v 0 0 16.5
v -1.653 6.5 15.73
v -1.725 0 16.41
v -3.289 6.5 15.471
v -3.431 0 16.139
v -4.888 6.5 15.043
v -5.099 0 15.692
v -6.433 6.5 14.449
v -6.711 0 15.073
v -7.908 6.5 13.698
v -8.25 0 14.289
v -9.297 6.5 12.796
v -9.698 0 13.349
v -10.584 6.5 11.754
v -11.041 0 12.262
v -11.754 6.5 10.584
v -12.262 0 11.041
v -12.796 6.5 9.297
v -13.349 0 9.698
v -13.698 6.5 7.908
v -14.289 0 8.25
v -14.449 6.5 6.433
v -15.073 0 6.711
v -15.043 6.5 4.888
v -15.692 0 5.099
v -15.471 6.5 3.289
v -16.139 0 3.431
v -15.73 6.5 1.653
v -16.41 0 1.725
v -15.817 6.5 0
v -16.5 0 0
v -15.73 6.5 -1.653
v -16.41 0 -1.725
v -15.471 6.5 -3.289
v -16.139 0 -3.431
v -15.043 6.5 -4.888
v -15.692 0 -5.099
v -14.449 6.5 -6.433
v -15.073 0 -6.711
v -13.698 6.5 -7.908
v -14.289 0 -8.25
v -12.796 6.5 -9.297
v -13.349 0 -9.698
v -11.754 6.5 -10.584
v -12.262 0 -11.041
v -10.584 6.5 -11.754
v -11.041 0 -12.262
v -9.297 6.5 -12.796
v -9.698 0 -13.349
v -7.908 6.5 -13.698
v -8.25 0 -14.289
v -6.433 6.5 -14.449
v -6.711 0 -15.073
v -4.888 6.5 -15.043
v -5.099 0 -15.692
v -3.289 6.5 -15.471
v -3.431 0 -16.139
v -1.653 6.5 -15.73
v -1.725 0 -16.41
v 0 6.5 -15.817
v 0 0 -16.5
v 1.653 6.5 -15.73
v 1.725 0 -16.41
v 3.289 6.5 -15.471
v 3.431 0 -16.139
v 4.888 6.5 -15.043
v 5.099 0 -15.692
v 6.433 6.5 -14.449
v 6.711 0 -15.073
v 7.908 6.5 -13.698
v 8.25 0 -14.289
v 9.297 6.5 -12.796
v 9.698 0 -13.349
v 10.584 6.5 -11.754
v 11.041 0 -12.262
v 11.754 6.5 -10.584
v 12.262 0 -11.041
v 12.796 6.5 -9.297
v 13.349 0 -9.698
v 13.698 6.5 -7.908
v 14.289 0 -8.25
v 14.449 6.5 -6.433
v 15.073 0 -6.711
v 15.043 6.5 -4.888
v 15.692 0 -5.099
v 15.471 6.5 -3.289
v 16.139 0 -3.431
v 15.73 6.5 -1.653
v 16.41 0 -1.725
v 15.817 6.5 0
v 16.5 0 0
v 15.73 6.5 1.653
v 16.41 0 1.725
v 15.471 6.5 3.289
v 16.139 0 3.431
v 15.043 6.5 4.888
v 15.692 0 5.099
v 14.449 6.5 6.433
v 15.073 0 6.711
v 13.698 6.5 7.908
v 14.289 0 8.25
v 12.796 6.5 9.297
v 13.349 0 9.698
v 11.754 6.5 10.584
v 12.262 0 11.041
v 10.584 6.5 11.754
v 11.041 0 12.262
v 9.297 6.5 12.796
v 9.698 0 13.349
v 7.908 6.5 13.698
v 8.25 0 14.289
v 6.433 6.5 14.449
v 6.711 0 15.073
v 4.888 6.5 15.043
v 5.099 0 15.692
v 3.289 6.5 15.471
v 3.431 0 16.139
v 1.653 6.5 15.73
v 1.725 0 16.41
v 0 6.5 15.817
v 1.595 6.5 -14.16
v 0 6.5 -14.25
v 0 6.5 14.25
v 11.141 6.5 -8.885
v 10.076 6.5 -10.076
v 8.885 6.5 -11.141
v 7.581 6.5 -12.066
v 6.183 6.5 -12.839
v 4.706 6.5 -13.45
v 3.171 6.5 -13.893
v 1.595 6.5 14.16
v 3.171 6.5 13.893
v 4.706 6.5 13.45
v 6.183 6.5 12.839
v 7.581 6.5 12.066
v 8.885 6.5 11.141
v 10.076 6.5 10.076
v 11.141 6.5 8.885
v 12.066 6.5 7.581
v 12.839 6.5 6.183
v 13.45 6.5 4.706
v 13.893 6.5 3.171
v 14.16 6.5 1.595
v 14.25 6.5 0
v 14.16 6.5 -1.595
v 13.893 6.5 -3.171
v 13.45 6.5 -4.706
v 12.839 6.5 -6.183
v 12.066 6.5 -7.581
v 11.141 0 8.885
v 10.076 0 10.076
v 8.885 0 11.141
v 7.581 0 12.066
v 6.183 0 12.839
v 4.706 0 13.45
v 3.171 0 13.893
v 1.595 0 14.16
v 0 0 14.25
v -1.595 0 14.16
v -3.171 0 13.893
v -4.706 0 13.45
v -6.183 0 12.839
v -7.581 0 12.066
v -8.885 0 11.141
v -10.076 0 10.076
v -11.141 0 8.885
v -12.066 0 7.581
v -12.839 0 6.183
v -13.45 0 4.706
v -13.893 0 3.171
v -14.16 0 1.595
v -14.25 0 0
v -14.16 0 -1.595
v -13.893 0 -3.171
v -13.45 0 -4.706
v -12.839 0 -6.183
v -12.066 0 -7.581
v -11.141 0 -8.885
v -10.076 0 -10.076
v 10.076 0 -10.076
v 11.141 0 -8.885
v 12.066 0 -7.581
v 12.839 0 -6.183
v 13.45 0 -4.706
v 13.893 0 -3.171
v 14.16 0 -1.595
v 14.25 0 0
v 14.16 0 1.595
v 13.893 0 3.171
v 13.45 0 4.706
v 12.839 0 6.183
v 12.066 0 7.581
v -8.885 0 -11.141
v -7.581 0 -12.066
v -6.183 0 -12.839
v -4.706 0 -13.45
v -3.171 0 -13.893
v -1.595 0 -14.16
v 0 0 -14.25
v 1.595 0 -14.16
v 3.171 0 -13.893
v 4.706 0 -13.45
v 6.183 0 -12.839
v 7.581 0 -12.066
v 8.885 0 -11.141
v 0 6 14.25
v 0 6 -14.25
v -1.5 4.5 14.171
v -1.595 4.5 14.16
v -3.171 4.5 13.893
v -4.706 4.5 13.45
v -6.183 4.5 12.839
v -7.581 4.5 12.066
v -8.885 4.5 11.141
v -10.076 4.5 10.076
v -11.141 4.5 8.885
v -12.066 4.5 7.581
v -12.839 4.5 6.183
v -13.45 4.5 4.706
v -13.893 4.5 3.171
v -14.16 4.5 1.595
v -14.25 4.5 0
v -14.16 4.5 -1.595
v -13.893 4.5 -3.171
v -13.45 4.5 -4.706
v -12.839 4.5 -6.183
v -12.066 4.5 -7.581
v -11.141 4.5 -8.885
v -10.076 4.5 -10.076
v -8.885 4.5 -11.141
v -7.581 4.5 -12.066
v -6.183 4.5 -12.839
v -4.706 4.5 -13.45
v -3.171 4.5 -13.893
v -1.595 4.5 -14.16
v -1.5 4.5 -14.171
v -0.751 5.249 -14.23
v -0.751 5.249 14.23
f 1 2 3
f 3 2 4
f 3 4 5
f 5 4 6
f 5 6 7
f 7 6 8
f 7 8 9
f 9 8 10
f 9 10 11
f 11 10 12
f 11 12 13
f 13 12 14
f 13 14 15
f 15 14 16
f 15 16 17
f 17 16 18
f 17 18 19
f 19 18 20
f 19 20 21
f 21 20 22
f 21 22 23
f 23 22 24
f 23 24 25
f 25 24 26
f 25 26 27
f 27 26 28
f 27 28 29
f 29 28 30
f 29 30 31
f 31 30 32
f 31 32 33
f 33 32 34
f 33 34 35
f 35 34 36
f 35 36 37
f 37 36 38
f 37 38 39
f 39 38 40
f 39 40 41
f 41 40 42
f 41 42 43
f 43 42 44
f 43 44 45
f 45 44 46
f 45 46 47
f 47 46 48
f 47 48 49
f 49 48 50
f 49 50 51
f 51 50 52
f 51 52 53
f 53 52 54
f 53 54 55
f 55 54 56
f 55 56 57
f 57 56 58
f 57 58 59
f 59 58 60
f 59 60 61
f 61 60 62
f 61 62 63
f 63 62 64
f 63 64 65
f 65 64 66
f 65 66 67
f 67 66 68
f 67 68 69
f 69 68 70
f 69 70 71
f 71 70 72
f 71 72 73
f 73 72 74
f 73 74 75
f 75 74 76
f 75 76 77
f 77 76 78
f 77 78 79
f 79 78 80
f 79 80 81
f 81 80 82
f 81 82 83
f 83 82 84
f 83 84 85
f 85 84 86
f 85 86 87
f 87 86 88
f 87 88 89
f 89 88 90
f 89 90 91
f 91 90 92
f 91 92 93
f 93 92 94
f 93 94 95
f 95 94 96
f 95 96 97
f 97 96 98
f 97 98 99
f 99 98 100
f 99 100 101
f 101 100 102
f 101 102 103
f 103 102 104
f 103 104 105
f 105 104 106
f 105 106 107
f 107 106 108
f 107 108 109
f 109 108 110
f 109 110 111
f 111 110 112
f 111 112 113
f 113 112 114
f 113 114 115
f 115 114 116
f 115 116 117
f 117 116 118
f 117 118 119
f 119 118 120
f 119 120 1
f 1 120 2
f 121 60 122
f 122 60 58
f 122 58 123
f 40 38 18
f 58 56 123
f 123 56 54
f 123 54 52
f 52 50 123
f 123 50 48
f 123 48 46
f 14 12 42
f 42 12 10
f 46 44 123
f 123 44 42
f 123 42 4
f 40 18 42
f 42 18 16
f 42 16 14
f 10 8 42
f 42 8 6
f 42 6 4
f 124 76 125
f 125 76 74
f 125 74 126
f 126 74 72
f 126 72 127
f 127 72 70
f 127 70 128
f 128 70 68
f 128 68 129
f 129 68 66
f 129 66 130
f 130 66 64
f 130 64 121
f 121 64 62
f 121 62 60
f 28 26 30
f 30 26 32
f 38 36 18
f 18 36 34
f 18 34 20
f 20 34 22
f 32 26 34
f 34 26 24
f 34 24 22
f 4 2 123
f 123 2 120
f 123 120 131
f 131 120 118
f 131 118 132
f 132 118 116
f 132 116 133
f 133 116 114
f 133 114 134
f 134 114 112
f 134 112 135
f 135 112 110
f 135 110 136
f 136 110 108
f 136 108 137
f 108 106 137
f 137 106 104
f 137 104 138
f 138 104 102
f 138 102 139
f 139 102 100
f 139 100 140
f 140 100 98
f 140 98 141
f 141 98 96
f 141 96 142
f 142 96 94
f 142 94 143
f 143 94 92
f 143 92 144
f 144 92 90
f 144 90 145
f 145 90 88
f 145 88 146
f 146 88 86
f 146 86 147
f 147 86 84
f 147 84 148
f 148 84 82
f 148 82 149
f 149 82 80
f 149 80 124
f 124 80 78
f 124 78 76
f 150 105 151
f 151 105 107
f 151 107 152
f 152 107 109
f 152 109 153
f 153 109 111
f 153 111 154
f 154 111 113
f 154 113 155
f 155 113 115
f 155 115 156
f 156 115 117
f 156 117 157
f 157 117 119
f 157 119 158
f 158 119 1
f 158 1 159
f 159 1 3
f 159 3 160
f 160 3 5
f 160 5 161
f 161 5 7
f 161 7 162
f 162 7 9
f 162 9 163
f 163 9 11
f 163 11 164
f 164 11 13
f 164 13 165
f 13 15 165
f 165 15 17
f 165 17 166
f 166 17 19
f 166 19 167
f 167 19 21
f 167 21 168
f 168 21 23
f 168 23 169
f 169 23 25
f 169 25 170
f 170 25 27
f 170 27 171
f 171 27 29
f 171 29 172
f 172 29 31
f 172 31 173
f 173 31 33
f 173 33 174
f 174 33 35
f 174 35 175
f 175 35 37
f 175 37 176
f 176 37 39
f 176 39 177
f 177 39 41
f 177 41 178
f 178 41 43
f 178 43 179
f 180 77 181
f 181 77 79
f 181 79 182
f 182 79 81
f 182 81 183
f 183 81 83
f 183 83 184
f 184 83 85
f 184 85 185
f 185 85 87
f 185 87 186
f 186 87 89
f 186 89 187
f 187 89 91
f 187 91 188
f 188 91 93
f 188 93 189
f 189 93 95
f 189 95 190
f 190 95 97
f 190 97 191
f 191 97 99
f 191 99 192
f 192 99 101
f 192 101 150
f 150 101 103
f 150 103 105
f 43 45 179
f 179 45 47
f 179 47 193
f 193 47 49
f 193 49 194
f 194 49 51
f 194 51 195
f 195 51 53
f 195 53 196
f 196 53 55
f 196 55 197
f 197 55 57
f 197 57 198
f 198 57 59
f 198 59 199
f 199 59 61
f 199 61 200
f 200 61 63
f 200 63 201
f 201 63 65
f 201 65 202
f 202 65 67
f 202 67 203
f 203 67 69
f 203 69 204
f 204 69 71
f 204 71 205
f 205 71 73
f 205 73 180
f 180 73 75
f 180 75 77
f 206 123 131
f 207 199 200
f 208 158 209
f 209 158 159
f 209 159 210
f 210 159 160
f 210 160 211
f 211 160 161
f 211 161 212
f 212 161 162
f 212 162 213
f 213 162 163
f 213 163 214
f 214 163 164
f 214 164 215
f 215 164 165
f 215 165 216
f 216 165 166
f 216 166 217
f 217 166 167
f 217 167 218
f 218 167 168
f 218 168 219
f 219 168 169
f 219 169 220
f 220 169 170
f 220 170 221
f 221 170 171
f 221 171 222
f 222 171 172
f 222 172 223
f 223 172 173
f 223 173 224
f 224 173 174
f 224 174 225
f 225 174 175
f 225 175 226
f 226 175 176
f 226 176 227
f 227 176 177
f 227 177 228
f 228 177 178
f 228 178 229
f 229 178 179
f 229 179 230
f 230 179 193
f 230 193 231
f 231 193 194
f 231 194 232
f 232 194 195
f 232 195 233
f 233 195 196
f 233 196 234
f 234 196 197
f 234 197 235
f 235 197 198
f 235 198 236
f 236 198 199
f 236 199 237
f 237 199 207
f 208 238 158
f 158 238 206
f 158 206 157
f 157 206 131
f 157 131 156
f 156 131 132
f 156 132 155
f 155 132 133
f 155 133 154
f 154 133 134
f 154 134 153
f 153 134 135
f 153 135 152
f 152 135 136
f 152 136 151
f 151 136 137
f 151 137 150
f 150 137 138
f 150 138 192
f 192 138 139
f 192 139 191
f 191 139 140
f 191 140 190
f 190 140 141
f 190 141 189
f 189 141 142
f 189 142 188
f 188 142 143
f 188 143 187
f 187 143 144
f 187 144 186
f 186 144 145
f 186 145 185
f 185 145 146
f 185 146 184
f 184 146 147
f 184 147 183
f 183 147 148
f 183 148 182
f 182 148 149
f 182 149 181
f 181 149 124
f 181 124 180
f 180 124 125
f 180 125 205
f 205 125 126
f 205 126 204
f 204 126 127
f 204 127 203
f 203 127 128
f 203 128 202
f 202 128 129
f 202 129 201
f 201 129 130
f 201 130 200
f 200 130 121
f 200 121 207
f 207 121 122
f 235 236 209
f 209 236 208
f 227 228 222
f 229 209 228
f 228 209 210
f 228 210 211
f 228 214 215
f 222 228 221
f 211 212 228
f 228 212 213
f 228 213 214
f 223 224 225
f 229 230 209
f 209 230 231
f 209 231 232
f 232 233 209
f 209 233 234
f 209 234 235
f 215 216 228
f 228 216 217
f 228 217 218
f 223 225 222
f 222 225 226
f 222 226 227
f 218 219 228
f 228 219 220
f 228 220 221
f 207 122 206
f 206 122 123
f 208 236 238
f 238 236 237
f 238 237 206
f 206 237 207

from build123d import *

# Parameters (mm, degrees)
SKETCH1_R           = 16.5
BOSS_EXTRUDE1_DEPTH = 6.5
BOSS_EXTRUDE1_TAPER = 6
SKETCH2_R           = 14.25
CUT_EXTRUDE1_DEPTH  = 4.5
CUT_EXTRUDE2_START  = -6
CUT_EXTRUDE2_DEPTH  = 6
CHAMFER1_SIZE       = 1.5


with BuildPart() as part:
    # Sketch1 → Boss-Extrude1 (new body)
    with BuildSketch(Plane(origin=(0, 0, 0), x_dir=(1, 0, 0), z_dir=(0, 1, 0))):
        Circle(SKETCH1_R)
    extrude(amount=BOSS_EXTRUDE1_DEPTH, taper=BOSS_EXTRUDE1_TAPER)

    # Sketch2 → Cut-Extrude1 (cut)
    with BuildSketch(Plane.XZ):
        with Locations(Location((0, 0, 0), (0, 0, 270))):
            Circle(SKETCH2_R)
    extrude(amount=-CUT_EXTRUDE1_DEPTH, mode=Mode.SUBTRACT)

    # Sketch3 → Cut-Extrude2 (cut)
    with BuildSketch(Plane(origin=(0, 6.5, 0), x_dir=(1, 0, 0), z_dir=(0, 1, 0)).offset(CUT_EXTRUDE2_START)):
        with BuildLine():
            Line((0, -14.25), (0, 14.25))
            ThreePointArc((0, 14.25), (14.25, 0), (0, -14.25))
        make_face()
    extrude(amount=CUT_EXTRUDE2_DEPTH, mode=Mode.SUBTRACT)

    # Chamfer1
    # the kernel refuses this chamfer: 1.5 mm, written as the material it takes off along each edge
    with BuildSketch(Plane(origin=(0, 4.5, 18.107524482), x_dir=(0.027495876610586376, 0.9996219169112968, 0), z_dir=(0, 0, -1))) as chamfer1_piece_1_section:
        Polygon((CHAMFER1_SIZE * 0.999621916911, -CHAMFER1_SIZE * 0.0274958766106), (-CHAMFER1_SIZE * 0.0274958766106, -CHAMFER1_SIZE * 0.999621916911), (0, 0), align=None)
    chamfer1_piece_1 = extrude(amount=36.215048964, mode=Mode.PRIVATE)
    chamfer1_piece_1 = chamfer1_piece_1 & Plane(origin=(0, 5.000185137, 0), x_dir=(0, 0, -1), z_dir=(0, -1, 0)) * Cylinder(14.25, 79, mode=Mode.PRIVATE)
    add(chamfer1_piece_1, mode=Mode.SUBTRACT)


solid = part.part
